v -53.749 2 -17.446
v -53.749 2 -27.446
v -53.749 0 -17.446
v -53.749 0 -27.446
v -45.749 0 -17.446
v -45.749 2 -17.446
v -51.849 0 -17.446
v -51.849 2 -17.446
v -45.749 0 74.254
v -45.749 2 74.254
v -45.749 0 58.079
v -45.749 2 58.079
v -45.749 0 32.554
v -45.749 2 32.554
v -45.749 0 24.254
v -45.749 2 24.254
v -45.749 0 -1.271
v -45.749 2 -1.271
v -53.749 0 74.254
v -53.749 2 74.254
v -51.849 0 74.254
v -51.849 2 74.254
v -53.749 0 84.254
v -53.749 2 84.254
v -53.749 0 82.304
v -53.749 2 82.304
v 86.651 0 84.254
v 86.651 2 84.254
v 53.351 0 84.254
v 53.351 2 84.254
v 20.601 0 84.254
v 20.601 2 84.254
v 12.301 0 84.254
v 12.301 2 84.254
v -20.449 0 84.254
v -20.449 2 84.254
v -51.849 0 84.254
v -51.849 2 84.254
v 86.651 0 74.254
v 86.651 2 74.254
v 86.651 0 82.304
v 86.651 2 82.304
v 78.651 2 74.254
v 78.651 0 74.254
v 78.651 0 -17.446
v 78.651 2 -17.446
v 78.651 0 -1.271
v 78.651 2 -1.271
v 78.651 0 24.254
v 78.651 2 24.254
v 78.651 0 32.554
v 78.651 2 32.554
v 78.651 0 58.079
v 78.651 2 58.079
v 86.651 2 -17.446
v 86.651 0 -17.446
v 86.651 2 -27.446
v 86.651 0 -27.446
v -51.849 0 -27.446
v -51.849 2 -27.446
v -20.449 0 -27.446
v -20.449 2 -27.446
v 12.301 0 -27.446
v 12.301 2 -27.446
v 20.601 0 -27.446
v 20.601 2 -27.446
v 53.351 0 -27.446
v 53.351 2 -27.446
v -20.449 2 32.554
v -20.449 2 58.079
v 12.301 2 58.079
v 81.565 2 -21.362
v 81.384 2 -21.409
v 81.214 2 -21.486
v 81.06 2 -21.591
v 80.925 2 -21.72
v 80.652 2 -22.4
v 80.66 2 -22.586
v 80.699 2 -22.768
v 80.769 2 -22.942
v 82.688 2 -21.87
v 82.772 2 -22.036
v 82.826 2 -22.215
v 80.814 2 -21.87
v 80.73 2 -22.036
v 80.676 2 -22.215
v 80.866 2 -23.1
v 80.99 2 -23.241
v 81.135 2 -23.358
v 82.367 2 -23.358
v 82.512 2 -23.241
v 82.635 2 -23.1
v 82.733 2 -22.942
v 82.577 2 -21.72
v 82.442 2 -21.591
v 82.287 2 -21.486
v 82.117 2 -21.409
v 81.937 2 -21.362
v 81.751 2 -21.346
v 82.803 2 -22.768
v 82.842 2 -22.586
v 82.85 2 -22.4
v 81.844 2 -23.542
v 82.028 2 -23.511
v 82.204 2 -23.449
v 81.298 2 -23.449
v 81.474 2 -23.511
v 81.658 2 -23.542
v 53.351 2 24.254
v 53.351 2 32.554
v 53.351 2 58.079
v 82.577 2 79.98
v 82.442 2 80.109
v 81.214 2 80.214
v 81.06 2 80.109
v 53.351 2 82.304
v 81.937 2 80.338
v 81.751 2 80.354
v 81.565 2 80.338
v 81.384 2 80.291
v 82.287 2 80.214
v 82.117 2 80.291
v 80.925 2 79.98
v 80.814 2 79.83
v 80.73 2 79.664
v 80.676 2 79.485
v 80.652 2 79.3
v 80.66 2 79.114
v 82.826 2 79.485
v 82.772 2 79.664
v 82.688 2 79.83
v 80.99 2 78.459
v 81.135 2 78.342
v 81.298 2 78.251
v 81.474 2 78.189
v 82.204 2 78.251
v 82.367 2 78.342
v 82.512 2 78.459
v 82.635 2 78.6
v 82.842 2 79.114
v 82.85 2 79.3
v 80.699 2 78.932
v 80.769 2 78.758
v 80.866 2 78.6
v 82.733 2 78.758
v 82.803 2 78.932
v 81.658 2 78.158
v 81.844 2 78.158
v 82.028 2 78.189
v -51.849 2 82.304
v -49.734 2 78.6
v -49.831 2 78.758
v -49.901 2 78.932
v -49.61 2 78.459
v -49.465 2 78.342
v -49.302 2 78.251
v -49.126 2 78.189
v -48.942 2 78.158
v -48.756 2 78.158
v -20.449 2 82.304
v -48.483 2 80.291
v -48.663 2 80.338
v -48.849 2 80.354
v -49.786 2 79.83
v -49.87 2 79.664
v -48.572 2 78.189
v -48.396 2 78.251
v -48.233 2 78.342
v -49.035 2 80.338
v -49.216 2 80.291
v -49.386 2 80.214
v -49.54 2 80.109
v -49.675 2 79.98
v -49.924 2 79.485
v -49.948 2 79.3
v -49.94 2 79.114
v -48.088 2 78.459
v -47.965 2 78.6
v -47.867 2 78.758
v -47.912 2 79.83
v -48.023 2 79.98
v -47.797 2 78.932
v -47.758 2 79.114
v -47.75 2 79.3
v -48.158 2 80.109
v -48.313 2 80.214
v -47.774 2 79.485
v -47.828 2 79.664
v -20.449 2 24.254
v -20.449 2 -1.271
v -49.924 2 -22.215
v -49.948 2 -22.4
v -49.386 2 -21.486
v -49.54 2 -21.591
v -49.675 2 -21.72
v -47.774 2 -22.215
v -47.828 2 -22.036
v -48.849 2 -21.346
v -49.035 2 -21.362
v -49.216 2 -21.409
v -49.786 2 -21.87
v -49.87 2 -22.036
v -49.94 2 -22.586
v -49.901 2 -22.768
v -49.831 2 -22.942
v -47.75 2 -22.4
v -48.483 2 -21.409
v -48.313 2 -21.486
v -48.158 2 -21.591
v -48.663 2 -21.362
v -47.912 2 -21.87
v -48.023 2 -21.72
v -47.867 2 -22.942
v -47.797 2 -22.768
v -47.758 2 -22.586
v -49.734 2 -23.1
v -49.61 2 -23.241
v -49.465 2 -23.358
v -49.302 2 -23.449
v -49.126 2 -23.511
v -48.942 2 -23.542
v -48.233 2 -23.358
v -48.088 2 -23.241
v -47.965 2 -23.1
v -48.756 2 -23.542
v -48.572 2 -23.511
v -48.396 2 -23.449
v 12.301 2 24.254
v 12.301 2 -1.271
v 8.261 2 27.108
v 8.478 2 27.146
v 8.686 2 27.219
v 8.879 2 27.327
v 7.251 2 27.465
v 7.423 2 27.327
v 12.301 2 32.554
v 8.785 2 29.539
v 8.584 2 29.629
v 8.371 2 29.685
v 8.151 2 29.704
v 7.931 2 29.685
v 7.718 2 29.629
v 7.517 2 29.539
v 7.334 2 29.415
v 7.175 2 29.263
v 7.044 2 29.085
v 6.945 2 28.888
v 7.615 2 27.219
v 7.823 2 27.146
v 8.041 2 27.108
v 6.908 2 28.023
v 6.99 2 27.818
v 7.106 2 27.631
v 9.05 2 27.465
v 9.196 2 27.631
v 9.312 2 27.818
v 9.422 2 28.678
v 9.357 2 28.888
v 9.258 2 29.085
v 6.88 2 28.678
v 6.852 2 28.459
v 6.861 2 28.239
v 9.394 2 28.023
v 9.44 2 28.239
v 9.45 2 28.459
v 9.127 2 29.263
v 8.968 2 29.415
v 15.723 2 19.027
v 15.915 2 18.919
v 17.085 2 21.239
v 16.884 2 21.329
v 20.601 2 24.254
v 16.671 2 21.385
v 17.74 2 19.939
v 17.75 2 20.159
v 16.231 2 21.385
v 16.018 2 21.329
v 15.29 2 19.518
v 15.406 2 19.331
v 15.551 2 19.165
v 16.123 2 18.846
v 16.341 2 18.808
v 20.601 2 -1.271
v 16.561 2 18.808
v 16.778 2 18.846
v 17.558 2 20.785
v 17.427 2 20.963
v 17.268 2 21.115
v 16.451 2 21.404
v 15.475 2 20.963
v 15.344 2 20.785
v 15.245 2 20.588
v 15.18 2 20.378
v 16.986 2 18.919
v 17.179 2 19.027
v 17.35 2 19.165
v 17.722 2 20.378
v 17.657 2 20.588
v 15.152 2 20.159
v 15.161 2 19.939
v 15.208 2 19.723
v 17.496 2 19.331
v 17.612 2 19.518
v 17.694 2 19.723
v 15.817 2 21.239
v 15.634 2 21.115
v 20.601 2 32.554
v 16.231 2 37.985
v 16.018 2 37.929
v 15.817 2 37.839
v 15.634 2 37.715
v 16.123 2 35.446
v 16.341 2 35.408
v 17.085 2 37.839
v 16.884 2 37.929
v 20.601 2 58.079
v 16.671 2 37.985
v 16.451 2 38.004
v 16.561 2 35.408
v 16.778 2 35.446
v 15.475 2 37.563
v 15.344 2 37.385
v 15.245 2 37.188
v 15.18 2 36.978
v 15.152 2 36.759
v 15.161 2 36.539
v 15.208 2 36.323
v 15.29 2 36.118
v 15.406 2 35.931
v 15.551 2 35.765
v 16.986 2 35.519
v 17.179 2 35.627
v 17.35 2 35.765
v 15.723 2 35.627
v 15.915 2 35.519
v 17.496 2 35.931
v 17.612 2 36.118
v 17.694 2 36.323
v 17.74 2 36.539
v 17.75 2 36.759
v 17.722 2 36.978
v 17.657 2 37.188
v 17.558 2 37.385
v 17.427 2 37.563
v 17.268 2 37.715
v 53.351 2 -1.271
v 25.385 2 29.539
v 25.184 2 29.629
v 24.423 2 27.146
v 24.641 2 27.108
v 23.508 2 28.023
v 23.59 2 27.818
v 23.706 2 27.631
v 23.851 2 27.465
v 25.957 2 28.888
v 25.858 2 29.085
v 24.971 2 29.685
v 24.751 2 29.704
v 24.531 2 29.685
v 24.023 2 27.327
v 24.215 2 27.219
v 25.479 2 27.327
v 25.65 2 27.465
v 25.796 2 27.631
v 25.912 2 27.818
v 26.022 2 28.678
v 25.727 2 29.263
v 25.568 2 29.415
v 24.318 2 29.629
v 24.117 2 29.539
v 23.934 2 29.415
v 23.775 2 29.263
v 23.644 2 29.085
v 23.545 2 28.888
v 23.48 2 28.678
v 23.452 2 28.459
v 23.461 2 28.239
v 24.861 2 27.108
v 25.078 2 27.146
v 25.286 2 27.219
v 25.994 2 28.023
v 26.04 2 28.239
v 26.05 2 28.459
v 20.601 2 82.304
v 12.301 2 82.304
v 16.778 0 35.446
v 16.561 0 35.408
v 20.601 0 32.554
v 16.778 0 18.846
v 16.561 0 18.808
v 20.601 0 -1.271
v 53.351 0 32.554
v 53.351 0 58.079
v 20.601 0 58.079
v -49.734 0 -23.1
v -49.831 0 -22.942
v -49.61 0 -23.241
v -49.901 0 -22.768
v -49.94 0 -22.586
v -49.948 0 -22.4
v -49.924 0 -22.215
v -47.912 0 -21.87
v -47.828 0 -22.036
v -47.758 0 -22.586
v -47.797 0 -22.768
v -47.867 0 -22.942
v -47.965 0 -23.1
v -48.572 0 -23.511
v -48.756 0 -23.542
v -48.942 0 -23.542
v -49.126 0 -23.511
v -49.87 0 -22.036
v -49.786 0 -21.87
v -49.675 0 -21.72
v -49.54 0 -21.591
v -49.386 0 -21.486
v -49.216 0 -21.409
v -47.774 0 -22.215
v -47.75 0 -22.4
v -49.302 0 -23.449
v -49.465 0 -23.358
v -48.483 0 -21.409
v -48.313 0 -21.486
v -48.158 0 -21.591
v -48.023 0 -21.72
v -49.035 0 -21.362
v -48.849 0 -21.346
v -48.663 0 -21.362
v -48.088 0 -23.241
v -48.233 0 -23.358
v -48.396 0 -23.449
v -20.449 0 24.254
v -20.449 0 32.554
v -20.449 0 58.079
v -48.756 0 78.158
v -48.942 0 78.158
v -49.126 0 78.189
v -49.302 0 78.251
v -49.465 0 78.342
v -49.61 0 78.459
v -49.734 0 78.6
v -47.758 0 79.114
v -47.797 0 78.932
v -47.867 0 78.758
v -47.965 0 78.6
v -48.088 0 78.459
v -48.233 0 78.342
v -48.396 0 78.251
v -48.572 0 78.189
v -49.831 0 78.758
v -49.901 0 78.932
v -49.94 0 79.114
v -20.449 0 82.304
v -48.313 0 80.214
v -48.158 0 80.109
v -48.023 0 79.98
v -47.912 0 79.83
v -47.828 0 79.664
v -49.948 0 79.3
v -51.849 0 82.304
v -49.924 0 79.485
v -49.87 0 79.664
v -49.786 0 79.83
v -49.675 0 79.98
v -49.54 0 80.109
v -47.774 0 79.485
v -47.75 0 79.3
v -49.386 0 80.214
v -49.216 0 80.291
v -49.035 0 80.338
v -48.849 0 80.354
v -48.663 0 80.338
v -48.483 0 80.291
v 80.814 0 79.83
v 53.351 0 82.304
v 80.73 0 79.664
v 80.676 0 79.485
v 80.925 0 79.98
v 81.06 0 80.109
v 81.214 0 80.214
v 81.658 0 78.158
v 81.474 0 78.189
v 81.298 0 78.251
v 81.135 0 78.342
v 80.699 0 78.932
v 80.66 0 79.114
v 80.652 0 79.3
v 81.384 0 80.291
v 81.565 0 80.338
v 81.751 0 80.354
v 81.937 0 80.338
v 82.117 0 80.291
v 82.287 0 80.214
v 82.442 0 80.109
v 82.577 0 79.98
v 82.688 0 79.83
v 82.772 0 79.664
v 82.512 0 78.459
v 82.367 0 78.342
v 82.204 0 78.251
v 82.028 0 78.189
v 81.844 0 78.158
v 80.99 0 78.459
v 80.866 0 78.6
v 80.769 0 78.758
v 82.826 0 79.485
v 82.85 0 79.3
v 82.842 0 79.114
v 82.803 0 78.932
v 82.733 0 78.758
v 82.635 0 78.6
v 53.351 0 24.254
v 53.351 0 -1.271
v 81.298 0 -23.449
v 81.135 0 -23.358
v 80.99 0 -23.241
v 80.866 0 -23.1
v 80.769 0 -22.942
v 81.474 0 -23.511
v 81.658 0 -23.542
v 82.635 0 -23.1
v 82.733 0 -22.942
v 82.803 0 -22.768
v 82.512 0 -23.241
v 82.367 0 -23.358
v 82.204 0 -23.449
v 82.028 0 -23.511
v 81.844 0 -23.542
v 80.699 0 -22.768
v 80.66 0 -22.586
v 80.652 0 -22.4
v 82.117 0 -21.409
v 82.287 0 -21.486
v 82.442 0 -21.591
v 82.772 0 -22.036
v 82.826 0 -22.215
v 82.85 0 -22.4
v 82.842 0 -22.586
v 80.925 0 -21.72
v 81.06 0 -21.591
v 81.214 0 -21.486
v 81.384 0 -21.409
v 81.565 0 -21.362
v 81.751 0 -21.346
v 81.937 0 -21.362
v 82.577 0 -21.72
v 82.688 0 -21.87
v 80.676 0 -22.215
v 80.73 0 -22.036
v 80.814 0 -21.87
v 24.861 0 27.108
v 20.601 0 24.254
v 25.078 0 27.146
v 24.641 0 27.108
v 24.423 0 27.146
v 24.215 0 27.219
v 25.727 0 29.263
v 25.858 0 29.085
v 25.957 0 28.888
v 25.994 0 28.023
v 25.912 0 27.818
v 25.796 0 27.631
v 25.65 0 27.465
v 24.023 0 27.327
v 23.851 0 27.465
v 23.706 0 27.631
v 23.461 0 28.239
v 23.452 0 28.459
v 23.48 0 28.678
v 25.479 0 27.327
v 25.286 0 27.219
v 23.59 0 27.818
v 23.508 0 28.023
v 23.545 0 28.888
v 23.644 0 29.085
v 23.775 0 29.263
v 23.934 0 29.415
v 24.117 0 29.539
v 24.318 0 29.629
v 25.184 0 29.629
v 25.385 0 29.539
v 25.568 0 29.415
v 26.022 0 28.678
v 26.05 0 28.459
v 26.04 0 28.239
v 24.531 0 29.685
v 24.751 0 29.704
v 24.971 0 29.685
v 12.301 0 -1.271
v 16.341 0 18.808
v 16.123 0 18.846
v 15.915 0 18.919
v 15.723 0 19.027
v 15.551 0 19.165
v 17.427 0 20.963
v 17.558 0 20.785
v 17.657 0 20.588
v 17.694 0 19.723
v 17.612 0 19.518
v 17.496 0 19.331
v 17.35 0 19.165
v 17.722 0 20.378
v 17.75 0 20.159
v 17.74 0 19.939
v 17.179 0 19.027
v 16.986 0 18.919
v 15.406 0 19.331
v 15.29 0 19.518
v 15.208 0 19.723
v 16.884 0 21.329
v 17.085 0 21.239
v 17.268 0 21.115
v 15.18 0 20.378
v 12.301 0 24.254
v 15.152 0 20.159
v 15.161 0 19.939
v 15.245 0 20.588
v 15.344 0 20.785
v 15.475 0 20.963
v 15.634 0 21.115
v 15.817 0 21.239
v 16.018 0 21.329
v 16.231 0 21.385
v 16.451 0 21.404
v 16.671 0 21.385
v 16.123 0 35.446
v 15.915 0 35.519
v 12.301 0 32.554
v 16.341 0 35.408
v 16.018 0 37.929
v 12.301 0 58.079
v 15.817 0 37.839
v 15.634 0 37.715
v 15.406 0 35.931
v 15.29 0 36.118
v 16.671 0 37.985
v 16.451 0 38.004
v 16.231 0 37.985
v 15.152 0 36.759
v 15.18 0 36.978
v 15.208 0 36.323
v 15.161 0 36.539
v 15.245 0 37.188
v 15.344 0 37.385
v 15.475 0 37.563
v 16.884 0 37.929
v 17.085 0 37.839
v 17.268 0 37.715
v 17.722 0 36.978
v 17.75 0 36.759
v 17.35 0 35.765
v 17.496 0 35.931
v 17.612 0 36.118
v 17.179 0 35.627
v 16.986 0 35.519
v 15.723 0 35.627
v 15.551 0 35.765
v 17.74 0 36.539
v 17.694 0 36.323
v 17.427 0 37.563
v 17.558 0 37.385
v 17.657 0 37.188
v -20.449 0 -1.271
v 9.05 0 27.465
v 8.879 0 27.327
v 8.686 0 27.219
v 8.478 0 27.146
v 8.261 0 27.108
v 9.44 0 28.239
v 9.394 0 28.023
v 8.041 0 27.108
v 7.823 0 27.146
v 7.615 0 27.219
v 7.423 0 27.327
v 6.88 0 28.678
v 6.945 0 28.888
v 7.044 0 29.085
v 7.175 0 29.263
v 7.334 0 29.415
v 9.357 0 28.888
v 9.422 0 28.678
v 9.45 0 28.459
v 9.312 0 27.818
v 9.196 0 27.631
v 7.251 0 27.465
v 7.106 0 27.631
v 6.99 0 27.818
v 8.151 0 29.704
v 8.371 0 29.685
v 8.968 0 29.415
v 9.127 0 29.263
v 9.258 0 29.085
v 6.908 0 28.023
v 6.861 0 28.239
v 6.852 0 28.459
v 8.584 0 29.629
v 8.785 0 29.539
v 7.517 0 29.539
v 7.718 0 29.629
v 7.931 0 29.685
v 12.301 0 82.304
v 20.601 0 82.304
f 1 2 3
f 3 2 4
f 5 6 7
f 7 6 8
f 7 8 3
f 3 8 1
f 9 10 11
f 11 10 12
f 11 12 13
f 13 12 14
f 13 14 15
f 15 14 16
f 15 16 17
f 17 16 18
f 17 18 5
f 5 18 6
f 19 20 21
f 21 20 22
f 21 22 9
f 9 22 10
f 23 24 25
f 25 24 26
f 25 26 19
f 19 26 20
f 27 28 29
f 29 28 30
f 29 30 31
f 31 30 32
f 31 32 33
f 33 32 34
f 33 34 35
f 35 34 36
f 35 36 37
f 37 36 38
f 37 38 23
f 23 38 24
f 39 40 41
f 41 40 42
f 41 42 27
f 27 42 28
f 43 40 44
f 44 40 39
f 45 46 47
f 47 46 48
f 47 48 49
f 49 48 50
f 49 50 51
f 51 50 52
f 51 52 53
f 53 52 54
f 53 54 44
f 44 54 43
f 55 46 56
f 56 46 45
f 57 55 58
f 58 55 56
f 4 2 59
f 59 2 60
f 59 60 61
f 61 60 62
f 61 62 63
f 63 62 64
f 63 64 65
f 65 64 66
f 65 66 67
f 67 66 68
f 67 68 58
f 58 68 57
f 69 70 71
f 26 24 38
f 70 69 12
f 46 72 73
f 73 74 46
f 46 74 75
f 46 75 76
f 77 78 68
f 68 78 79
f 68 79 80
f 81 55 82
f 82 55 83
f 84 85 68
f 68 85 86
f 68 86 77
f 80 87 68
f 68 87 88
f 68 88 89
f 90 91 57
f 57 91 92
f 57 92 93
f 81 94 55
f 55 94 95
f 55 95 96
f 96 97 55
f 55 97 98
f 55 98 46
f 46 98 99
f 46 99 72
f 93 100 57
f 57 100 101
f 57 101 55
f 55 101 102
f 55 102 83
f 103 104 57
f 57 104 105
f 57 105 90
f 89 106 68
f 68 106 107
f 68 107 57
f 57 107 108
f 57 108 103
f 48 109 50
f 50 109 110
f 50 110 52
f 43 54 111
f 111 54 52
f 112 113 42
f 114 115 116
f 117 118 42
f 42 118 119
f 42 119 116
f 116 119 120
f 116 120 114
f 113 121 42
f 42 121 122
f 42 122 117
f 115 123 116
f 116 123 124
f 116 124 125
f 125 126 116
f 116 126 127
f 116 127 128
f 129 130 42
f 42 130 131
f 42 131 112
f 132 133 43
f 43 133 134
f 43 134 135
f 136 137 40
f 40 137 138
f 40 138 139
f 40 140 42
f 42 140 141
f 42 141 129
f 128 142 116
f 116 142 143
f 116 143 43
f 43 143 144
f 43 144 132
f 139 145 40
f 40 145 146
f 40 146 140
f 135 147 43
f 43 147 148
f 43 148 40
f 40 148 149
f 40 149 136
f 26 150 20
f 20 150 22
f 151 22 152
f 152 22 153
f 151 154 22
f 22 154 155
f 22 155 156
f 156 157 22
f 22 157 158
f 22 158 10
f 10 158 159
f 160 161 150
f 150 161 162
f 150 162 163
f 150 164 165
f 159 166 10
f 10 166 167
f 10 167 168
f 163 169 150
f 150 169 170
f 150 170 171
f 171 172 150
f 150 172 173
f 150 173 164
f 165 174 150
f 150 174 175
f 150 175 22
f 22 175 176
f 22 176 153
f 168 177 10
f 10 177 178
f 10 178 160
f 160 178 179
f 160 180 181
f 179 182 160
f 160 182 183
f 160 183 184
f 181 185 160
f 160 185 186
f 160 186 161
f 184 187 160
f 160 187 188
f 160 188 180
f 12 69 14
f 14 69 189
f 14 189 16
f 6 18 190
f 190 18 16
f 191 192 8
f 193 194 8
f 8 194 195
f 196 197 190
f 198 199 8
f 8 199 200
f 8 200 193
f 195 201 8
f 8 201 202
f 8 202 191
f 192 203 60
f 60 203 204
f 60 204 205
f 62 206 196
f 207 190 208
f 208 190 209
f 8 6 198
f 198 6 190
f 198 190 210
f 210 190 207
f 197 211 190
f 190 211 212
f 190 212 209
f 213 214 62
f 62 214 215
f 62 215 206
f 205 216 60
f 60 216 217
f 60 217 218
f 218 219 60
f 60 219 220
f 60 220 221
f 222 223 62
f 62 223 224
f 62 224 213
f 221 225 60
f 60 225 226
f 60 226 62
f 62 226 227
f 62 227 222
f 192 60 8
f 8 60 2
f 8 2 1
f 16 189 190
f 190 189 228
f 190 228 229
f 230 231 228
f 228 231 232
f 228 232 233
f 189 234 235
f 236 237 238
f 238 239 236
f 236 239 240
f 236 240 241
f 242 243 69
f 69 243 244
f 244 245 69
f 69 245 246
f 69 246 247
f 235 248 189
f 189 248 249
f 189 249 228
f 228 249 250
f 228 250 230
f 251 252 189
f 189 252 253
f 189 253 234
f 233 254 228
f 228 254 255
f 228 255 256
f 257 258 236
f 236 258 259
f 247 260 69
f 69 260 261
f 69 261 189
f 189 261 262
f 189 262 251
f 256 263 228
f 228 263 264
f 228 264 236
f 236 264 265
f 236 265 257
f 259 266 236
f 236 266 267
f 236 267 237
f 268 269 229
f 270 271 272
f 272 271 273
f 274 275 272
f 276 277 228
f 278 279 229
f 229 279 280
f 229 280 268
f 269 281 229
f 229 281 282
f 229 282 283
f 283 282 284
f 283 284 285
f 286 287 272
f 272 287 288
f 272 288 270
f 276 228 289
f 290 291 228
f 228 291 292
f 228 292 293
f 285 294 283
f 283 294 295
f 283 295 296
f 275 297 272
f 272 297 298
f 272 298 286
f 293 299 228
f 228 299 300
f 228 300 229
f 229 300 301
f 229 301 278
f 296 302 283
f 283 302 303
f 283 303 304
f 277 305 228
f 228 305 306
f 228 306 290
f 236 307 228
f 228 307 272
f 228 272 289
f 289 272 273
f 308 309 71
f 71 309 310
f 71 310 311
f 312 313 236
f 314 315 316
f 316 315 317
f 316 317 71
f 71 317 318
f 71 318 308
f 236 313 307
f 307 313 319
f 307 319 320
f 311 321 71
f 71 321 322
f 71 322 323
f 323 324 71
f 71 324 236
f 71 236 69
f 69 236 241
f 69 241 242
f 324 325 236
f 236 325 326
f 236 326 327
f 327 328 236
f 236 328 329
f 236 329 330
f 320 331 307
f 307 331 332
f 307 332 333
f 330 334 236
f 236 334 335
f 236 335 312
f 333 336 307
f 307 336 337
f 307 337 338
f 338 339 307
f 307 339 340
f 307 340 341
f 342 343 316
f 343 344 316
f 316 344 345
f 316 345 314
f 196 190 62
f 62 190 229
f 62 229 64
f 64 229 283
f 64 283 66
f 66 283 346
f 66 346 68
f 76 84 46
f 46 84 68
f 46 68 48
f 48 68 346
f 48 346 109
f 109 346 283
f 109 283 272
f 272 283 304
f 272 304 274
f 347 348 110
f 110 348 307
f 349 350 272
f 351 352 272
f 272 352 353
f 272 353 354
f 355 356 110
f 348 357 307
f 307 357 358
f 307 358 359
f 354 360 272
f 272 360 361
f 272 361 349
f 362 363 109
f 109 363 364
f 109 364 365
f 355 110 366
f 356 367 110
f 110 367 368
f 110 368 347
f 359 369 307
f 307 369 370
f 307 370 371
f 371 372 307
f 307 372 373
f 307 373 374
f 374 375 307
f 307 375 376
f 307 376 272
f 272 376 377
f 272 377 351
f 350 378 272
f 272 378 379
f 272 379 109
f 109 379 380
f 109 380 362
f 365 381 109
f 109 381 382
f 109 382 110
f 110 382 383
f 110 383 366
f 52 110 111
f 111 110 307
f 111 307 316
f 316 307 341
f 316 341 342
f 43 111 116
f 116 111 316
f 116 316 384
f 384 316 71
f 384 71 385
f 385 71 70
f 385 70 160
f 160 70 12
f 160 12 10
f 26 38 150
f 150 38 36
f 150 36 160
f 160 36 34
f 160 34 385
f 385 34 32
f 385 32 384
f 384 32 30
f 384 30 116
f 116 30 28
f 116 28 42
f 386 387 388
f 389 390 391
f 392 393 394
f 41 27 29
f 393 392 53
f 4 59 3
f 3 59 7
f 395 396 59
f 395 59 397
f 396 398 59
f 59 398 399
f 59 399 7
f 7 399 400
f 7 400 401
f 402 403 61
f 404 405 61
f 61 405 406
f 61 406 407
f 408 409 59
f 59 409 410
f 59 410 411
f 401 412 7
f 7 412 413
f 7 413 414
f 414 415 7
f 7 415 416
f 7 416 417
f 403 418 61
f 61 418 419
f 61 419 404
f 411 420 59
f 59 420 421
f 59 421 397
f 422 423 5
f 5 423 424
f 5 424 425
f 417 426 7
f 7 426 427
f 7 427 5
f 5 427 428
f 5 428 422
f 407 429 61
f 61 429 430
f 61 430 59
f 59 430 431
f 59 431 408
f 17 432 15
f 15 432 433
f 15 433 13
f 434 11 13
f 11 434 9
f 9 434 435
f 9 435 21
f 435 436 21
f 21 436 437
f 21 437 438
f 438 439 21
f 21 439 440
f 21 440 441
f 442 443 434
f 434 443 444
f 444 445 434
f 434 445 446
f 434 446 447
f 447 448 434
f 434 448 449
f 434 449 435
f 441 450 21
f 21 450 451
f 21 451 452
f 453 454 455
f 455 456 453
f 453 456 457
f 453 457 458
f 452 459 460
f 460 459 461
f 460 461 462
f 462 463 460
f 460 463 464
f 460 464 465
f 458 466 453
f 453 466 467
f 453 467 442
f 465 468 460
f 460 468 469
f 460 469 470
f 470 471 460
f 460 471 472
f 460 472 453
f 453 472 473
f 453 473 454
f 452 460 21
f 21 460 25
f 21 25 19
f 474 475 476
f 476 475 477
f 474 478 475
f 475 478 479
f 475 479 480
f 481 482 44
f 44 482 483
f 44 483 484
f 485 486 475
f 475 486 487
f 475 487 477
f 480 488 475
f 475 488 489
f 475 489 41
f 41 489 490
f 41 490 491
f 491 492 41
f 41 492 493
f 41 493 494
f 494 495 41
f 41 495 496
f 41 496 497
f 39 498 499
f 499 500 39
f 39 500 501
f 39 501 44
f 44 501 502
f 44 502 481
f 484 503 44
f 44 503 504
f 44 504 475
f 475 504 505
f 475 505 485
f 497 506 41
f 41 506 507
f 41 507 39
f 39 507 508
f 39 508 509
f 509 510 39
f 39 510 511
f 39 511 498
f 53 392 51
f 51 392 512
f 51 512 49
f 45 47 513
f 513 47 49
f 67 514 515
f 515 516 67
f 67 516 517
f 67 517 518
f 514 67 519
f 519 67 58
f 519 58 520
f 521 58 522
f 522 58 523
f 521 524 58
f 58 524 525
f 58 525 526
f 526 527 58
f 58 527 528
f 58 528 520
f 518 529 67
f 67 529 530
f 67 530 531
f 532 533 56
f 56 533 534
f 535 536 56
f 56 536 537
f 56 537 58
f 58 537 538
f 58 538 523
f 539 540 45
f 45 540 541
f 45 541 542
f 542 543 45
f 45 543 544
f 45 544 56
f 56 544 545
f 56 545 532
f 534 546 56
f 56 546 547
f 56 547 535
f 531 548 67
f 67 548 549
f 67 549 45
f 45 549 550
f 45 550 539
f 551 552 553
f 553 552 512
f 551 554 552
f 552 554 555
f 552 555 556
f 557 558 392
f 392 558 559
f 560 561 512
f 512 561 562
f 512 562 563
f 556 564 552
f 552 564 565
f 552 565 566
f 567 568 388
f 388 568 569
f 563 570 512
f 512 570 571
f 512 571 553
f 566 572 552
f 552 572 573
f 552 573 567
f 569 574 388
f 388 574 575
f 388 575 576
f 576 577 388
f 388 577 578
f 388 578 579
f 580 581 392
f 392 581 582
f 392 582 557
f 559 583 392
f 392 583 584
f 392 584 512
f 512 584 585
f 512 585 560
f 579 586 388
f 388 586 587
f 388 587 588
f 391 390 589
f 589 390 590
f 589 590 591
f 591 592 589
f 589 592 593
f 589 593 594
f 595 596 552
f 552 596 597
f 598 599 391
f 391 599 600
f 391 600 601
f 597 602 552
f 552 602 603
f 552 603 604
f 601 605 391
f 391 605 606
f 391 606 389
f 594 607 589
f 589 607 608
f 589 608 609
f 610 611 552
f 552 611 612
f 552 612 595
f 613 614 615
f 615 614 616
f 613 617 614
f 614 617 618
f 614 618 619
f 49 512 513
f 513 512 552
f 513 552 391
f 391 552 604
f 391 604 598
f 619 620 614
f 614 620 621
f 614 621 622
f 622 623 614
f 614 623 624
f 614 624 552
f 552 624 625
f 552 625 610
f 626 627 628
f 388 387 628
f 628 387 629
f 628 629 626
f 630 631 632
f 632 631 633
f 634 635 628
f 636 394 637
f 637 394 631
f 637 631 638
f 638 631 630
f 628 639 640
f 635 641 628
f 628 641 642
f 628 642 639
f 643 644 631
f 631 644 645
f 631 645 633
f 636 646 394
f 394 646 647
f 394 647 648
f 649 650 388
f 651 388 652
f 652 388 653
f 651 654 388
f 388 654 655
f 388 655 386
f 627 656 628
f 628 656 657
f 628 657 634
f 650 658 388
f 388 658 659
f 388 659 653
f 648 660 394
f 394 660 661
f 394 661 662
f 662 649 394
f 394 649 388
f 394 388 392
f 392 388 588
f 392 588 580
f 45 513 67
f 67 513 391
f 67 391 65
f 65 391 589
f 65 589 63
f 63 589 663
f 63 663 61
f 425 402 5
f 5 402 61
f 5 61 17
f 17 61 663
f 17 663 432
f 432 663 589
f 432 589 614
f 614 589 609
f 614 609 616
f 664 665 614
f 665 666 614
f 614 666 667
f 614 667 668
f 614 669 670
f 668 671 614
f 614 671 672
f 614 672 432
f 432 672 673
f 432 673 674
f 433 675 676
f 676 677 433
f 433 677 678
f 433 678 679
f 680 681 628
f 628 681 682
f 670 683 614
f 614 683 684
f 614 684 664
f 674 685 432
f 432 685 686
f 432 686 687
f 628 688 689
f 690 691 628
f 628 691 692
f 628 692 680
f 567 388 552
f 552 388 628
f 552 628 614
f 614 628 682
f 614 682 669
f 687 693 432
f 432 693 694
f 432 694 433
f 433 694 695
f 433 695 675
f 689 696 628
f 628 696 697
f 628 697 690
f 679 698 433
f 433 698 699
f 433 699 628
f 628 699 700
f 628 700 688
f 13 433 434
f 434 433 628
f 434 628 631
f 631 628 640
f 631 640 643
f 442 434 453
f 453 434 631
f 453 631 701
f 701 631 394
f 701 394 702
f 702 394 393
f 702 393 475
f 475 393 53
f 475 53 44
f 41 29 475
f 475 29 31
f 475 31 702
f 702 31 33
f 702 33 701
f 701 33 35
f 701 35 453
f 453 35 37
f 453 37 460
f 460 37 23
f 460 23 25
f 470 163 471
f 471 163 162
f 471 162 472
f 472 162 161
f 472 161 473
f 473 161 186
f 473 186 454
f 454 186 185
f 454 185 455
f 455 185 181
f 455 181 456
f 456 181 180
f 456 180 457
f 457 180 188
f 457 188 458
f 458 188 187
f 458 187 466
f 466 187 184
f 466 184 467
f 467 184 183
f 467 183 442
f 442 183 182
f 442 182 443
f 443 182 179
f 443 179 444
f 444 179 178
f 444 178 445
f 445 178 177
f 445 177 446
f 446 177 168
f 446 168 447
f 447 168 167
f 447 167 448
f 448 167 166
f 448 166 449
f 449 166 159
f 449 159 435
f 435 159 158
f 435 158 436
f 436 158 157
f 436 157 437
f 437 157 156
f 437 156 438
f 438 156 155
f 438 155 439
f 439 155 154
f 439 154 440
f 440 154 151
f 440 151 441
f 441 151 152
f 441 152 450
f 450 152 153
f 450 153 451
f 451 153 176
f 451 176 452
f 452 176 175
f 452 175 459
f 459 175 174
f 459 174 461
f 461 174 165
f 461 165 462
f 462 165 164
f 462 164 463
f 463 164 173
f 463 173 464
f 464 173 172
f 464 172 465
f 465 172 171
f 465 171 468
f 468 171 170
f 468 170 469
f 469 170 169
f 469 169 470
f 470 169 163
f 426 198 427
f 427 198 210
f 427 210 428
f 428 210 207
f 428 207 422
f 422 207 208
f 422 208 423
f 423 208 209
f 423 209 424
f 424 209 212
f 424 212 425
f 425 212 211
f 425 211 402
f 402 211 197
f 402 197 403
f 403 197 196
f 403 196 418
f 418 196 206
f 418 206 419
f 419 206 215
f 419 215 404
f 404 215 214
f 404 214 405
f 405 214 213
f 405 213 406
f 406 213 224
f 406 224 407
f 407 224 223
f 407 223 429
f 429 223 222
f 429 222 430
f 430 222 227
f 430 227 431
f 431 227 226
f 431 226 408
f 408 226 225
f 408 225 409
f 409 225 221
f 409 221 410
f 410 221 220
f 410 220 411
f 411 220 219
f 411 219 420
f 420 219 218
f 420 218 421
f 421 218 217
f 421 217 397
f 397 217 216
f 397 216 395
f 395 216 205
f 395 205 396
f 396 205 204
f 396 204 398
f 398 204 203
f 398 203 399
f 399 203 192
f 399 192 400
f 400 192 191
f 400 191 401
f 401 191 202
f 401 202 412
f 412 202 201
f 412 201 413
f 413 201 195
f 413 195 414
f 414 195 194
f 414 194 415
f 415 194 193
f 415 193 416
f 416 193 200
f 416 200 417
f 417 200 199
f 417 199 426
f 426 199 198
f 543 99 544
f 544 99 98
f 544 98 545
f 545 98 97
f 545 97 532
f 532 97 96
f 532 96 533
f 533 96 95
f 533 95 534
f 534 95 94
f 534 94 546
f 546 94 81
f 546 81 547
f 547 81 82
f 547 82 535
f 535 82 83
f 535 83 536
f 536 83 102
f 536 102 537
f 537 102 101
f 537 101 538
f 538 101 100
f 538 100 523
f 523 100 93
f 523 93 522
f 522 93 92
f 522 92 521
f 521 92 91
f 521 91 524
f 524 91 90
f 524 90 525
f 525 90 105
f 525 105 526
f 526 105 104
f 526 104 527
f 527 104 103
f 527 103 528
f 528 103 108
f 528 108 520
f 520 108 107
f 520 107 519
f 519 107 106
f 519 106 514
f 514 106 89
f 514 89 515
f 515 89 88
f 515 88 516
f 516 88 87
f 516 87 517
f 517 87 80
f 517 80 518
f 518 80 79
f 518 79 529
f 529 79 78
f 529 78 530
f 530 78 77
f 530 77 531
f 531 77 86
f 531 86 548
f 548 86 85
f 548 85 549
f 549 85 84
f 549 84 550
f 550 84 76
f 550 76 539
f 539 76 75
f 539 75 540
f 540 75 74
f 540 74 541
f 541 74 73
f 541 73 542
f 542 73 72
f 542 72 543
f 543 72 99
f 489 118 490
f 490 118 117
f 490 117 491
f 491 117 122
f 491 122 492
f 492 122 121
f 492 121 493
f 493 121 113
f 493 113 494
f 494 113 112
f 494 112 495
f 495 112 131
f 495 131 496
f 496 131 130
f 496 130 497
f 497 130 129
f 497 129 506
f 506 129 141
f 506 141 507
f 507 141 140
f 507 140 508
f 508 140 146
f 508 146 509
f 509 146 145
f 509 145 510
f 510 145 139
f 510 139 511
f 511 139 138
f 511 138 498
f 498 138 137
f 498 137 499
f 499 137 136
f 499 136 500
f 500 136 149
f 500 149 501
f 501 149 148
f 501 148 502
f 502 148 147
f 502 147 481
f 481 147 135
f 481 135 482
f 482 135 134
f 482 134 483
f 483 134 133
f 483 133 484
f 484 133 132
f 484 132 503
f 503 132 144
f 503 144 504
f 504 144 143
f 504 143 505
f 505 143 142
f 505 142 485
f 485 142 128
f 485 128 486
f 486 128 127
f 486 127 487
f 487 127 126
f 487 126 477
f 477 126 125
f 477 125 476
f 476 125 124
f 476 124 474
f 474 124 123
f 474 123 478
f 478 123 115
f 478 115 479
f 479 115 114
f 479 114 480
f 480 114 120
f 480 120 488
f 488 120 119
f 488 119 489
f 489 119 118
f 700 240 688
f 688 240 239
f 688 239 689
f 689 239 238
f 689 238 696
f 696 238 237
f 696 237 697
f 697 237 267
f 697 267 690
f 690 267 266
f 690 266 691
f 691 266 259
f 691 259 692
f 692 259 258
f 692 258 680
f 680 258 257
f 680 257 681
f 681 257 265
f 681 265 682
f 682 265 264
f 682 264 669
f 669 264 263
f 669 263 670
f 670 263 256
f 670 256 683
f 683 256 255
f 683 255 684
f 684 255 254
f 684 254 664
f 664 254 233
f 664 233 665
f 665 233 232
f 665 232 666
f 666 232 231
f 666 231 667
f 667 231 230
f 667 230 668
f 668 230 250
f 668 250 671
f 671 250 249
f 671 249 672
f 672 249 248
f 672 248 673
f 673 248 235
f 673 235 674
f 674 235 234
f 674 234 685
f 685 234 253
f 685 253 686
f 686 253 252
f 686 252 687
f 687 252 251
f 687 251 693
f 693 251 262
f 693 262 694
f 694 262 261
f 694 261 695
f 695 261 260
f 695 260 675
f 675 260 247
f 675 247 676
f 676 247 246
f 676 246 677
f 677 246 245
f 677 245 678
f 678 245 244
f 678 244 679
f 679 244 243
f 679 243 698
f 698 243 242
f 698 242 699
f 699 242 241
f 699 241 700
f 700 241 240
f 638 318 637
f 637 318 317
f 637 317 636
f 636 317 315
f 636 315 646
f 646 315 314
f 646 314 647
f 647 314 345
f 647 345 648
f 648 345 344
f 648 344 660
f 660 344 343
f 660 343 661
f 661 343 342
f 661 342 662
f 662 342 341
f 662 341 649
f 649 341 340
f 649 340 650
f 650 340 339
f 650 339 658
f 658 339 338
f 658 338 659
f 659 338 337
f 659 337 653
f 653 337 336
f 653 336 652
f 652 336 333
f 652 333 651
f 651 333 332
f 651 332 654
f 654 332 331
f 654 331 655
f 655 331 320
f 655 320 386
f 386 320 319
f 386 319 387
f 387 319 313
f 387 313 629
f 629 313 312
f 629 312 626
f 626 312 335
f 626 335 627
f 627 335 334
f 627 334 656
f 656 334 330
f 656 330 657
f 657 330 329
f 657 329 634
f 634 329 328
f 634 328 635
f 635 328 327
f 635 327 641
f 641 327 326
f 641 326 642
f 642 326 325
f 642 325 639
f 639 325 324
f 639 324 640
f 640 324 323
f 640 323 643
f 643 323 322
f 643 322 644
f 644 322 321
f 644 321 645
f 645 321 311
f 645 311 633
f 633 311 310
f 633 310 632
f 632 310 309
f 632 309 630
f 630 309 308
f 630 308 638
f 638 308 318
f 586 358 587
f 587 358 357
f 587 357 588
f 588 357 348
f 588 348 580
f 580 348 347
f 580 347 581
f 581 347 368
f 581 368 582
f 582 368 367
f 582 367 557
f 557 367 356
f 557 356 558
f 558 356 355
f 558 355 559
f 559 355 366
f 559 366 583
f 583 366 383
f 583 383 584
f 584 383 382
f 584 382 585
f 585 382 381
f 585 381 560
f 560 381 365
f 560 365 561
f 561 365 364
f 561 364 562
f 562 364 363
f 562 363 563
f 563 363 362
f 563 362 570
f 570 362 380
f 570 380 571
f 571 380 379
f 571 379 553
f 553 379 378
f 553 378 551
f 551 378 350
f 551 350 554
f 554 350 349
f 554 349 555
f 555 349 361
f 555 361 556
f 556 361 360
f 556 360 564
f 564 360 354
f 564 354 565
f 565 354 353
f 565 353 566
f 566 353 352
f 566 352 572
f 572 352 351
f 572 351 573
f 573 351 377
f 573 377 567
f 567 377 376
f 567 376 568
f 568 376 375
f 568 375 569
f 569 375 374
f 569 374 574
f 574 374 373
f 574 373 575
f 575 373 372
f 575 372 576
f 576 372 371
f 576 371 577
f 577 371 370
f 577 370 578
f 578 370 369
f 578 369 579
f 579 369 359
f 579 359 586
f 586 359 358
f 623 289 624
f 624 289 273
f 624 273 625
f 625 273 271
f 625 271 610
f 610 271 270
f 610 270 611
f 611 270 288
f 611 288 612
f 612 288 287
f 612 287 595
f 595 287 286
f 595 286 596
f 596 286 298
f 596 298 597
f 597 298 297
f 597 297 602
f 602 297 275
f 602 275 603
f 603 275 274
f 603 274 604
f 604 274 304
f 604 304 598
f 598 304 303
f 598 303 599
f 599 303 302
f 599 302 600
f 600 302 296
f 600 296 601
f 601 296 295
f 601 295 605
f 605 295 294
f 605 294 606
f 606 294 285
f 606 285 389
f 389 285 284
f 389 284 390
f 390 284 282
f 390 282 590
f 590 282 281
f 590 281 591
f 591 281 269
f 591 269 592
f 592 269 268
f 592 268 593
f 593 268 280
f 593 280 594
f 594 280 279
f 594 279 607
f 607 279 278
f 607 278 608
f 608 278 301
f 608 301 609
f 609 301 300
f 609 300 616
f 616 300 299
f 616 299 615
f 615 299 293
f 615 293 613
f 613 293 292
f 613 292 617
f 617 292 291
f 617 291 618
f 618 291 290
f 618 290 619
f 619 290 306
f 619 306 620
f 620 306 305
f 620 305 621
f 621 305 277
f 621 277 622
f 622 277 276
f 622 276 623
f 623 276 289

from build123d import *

# Parameters (mm, degrees)
BOSS_EXTRUDE1_DEPTH = 2
SKETCH2_R           = 1.1
CUT_EXTRUDE1_DEPTH  = 2
SKETCH3_R           = 1.3
CUT_EXTRUDE2_DEPTH  = 2


with BuildPart() as part:
    # Sketch1 → Boss-Extrude1 (new body)
    with BuildSketch(Plane(origin=(0, 0, 0), x_dir=(1, 0, 0), z_dir=(0, 1, 0))):
        Polygon((-53.749139255, 17.446368981), (-45.749139255, 17.446368981), (-45.749139255, -74.253631019), (-53.749139255, -74.253631019), (-53.749139255, -84.253631019), (86.650860745, -84.253631019), (86.650860745, -74.253631019), (78.650860745, -74.253631019), (78.650860745, 17.446368981), (86.650860745, 17.446368981), (86.650860745, 27.446368981), (-53.749139255, 27.446368981), align=None)
    extrude(amount=BOSS_EXTRUDE1_DEPTH)

    # Sketch2 → Cut-Extrude1 (cut)
    with BuildSketch(Plane(origin=(0, 2, 0), x_dir=(1, 0, 0), z_dir=(0, 1, 0))):
        with Locations((-48.849139255, -79.253631019)):
            Circle(SKETCH2_R)
        with Locations((-48.849139255, 22.446368981)):
            Circle(SKETCH2_R)
        with Locations((81.750860745, 22.446368981)):
            Circle(SKETCH2_R)
        with Locations((81.750860745, -79.253631019)):
            Circle(SKETCH2_R)
    extrude(amount=-CUT_EXTRUDE1_DEPTH, mode=Mode.SUBTRACT)

    # Sketch3 → Cut-Extrude2 (cut)
    with BuildSketch(Plane(origin=(0, 2, 0), x_dir=(1, 0, 0), z_dir=(0, 1, 0))):
        with Locations((8.150860745, -28.403631019)):
            Circle(SKETCH3_R)
        with Locations((16.450860745, -36.703631019)):
            Circle(SKETCH3_R)
        with Locations((24.750860745, -28.403631019)):
            Circle(SKETCH3_R)
        with Locations((16.450860745, -20.103631019)):
            Circle(SKETCH3_R)
    extrude(amount=-CUT_EXTRUDE2_DEPTH, mode=Mode.SUBTRACT)


solid = part.part
